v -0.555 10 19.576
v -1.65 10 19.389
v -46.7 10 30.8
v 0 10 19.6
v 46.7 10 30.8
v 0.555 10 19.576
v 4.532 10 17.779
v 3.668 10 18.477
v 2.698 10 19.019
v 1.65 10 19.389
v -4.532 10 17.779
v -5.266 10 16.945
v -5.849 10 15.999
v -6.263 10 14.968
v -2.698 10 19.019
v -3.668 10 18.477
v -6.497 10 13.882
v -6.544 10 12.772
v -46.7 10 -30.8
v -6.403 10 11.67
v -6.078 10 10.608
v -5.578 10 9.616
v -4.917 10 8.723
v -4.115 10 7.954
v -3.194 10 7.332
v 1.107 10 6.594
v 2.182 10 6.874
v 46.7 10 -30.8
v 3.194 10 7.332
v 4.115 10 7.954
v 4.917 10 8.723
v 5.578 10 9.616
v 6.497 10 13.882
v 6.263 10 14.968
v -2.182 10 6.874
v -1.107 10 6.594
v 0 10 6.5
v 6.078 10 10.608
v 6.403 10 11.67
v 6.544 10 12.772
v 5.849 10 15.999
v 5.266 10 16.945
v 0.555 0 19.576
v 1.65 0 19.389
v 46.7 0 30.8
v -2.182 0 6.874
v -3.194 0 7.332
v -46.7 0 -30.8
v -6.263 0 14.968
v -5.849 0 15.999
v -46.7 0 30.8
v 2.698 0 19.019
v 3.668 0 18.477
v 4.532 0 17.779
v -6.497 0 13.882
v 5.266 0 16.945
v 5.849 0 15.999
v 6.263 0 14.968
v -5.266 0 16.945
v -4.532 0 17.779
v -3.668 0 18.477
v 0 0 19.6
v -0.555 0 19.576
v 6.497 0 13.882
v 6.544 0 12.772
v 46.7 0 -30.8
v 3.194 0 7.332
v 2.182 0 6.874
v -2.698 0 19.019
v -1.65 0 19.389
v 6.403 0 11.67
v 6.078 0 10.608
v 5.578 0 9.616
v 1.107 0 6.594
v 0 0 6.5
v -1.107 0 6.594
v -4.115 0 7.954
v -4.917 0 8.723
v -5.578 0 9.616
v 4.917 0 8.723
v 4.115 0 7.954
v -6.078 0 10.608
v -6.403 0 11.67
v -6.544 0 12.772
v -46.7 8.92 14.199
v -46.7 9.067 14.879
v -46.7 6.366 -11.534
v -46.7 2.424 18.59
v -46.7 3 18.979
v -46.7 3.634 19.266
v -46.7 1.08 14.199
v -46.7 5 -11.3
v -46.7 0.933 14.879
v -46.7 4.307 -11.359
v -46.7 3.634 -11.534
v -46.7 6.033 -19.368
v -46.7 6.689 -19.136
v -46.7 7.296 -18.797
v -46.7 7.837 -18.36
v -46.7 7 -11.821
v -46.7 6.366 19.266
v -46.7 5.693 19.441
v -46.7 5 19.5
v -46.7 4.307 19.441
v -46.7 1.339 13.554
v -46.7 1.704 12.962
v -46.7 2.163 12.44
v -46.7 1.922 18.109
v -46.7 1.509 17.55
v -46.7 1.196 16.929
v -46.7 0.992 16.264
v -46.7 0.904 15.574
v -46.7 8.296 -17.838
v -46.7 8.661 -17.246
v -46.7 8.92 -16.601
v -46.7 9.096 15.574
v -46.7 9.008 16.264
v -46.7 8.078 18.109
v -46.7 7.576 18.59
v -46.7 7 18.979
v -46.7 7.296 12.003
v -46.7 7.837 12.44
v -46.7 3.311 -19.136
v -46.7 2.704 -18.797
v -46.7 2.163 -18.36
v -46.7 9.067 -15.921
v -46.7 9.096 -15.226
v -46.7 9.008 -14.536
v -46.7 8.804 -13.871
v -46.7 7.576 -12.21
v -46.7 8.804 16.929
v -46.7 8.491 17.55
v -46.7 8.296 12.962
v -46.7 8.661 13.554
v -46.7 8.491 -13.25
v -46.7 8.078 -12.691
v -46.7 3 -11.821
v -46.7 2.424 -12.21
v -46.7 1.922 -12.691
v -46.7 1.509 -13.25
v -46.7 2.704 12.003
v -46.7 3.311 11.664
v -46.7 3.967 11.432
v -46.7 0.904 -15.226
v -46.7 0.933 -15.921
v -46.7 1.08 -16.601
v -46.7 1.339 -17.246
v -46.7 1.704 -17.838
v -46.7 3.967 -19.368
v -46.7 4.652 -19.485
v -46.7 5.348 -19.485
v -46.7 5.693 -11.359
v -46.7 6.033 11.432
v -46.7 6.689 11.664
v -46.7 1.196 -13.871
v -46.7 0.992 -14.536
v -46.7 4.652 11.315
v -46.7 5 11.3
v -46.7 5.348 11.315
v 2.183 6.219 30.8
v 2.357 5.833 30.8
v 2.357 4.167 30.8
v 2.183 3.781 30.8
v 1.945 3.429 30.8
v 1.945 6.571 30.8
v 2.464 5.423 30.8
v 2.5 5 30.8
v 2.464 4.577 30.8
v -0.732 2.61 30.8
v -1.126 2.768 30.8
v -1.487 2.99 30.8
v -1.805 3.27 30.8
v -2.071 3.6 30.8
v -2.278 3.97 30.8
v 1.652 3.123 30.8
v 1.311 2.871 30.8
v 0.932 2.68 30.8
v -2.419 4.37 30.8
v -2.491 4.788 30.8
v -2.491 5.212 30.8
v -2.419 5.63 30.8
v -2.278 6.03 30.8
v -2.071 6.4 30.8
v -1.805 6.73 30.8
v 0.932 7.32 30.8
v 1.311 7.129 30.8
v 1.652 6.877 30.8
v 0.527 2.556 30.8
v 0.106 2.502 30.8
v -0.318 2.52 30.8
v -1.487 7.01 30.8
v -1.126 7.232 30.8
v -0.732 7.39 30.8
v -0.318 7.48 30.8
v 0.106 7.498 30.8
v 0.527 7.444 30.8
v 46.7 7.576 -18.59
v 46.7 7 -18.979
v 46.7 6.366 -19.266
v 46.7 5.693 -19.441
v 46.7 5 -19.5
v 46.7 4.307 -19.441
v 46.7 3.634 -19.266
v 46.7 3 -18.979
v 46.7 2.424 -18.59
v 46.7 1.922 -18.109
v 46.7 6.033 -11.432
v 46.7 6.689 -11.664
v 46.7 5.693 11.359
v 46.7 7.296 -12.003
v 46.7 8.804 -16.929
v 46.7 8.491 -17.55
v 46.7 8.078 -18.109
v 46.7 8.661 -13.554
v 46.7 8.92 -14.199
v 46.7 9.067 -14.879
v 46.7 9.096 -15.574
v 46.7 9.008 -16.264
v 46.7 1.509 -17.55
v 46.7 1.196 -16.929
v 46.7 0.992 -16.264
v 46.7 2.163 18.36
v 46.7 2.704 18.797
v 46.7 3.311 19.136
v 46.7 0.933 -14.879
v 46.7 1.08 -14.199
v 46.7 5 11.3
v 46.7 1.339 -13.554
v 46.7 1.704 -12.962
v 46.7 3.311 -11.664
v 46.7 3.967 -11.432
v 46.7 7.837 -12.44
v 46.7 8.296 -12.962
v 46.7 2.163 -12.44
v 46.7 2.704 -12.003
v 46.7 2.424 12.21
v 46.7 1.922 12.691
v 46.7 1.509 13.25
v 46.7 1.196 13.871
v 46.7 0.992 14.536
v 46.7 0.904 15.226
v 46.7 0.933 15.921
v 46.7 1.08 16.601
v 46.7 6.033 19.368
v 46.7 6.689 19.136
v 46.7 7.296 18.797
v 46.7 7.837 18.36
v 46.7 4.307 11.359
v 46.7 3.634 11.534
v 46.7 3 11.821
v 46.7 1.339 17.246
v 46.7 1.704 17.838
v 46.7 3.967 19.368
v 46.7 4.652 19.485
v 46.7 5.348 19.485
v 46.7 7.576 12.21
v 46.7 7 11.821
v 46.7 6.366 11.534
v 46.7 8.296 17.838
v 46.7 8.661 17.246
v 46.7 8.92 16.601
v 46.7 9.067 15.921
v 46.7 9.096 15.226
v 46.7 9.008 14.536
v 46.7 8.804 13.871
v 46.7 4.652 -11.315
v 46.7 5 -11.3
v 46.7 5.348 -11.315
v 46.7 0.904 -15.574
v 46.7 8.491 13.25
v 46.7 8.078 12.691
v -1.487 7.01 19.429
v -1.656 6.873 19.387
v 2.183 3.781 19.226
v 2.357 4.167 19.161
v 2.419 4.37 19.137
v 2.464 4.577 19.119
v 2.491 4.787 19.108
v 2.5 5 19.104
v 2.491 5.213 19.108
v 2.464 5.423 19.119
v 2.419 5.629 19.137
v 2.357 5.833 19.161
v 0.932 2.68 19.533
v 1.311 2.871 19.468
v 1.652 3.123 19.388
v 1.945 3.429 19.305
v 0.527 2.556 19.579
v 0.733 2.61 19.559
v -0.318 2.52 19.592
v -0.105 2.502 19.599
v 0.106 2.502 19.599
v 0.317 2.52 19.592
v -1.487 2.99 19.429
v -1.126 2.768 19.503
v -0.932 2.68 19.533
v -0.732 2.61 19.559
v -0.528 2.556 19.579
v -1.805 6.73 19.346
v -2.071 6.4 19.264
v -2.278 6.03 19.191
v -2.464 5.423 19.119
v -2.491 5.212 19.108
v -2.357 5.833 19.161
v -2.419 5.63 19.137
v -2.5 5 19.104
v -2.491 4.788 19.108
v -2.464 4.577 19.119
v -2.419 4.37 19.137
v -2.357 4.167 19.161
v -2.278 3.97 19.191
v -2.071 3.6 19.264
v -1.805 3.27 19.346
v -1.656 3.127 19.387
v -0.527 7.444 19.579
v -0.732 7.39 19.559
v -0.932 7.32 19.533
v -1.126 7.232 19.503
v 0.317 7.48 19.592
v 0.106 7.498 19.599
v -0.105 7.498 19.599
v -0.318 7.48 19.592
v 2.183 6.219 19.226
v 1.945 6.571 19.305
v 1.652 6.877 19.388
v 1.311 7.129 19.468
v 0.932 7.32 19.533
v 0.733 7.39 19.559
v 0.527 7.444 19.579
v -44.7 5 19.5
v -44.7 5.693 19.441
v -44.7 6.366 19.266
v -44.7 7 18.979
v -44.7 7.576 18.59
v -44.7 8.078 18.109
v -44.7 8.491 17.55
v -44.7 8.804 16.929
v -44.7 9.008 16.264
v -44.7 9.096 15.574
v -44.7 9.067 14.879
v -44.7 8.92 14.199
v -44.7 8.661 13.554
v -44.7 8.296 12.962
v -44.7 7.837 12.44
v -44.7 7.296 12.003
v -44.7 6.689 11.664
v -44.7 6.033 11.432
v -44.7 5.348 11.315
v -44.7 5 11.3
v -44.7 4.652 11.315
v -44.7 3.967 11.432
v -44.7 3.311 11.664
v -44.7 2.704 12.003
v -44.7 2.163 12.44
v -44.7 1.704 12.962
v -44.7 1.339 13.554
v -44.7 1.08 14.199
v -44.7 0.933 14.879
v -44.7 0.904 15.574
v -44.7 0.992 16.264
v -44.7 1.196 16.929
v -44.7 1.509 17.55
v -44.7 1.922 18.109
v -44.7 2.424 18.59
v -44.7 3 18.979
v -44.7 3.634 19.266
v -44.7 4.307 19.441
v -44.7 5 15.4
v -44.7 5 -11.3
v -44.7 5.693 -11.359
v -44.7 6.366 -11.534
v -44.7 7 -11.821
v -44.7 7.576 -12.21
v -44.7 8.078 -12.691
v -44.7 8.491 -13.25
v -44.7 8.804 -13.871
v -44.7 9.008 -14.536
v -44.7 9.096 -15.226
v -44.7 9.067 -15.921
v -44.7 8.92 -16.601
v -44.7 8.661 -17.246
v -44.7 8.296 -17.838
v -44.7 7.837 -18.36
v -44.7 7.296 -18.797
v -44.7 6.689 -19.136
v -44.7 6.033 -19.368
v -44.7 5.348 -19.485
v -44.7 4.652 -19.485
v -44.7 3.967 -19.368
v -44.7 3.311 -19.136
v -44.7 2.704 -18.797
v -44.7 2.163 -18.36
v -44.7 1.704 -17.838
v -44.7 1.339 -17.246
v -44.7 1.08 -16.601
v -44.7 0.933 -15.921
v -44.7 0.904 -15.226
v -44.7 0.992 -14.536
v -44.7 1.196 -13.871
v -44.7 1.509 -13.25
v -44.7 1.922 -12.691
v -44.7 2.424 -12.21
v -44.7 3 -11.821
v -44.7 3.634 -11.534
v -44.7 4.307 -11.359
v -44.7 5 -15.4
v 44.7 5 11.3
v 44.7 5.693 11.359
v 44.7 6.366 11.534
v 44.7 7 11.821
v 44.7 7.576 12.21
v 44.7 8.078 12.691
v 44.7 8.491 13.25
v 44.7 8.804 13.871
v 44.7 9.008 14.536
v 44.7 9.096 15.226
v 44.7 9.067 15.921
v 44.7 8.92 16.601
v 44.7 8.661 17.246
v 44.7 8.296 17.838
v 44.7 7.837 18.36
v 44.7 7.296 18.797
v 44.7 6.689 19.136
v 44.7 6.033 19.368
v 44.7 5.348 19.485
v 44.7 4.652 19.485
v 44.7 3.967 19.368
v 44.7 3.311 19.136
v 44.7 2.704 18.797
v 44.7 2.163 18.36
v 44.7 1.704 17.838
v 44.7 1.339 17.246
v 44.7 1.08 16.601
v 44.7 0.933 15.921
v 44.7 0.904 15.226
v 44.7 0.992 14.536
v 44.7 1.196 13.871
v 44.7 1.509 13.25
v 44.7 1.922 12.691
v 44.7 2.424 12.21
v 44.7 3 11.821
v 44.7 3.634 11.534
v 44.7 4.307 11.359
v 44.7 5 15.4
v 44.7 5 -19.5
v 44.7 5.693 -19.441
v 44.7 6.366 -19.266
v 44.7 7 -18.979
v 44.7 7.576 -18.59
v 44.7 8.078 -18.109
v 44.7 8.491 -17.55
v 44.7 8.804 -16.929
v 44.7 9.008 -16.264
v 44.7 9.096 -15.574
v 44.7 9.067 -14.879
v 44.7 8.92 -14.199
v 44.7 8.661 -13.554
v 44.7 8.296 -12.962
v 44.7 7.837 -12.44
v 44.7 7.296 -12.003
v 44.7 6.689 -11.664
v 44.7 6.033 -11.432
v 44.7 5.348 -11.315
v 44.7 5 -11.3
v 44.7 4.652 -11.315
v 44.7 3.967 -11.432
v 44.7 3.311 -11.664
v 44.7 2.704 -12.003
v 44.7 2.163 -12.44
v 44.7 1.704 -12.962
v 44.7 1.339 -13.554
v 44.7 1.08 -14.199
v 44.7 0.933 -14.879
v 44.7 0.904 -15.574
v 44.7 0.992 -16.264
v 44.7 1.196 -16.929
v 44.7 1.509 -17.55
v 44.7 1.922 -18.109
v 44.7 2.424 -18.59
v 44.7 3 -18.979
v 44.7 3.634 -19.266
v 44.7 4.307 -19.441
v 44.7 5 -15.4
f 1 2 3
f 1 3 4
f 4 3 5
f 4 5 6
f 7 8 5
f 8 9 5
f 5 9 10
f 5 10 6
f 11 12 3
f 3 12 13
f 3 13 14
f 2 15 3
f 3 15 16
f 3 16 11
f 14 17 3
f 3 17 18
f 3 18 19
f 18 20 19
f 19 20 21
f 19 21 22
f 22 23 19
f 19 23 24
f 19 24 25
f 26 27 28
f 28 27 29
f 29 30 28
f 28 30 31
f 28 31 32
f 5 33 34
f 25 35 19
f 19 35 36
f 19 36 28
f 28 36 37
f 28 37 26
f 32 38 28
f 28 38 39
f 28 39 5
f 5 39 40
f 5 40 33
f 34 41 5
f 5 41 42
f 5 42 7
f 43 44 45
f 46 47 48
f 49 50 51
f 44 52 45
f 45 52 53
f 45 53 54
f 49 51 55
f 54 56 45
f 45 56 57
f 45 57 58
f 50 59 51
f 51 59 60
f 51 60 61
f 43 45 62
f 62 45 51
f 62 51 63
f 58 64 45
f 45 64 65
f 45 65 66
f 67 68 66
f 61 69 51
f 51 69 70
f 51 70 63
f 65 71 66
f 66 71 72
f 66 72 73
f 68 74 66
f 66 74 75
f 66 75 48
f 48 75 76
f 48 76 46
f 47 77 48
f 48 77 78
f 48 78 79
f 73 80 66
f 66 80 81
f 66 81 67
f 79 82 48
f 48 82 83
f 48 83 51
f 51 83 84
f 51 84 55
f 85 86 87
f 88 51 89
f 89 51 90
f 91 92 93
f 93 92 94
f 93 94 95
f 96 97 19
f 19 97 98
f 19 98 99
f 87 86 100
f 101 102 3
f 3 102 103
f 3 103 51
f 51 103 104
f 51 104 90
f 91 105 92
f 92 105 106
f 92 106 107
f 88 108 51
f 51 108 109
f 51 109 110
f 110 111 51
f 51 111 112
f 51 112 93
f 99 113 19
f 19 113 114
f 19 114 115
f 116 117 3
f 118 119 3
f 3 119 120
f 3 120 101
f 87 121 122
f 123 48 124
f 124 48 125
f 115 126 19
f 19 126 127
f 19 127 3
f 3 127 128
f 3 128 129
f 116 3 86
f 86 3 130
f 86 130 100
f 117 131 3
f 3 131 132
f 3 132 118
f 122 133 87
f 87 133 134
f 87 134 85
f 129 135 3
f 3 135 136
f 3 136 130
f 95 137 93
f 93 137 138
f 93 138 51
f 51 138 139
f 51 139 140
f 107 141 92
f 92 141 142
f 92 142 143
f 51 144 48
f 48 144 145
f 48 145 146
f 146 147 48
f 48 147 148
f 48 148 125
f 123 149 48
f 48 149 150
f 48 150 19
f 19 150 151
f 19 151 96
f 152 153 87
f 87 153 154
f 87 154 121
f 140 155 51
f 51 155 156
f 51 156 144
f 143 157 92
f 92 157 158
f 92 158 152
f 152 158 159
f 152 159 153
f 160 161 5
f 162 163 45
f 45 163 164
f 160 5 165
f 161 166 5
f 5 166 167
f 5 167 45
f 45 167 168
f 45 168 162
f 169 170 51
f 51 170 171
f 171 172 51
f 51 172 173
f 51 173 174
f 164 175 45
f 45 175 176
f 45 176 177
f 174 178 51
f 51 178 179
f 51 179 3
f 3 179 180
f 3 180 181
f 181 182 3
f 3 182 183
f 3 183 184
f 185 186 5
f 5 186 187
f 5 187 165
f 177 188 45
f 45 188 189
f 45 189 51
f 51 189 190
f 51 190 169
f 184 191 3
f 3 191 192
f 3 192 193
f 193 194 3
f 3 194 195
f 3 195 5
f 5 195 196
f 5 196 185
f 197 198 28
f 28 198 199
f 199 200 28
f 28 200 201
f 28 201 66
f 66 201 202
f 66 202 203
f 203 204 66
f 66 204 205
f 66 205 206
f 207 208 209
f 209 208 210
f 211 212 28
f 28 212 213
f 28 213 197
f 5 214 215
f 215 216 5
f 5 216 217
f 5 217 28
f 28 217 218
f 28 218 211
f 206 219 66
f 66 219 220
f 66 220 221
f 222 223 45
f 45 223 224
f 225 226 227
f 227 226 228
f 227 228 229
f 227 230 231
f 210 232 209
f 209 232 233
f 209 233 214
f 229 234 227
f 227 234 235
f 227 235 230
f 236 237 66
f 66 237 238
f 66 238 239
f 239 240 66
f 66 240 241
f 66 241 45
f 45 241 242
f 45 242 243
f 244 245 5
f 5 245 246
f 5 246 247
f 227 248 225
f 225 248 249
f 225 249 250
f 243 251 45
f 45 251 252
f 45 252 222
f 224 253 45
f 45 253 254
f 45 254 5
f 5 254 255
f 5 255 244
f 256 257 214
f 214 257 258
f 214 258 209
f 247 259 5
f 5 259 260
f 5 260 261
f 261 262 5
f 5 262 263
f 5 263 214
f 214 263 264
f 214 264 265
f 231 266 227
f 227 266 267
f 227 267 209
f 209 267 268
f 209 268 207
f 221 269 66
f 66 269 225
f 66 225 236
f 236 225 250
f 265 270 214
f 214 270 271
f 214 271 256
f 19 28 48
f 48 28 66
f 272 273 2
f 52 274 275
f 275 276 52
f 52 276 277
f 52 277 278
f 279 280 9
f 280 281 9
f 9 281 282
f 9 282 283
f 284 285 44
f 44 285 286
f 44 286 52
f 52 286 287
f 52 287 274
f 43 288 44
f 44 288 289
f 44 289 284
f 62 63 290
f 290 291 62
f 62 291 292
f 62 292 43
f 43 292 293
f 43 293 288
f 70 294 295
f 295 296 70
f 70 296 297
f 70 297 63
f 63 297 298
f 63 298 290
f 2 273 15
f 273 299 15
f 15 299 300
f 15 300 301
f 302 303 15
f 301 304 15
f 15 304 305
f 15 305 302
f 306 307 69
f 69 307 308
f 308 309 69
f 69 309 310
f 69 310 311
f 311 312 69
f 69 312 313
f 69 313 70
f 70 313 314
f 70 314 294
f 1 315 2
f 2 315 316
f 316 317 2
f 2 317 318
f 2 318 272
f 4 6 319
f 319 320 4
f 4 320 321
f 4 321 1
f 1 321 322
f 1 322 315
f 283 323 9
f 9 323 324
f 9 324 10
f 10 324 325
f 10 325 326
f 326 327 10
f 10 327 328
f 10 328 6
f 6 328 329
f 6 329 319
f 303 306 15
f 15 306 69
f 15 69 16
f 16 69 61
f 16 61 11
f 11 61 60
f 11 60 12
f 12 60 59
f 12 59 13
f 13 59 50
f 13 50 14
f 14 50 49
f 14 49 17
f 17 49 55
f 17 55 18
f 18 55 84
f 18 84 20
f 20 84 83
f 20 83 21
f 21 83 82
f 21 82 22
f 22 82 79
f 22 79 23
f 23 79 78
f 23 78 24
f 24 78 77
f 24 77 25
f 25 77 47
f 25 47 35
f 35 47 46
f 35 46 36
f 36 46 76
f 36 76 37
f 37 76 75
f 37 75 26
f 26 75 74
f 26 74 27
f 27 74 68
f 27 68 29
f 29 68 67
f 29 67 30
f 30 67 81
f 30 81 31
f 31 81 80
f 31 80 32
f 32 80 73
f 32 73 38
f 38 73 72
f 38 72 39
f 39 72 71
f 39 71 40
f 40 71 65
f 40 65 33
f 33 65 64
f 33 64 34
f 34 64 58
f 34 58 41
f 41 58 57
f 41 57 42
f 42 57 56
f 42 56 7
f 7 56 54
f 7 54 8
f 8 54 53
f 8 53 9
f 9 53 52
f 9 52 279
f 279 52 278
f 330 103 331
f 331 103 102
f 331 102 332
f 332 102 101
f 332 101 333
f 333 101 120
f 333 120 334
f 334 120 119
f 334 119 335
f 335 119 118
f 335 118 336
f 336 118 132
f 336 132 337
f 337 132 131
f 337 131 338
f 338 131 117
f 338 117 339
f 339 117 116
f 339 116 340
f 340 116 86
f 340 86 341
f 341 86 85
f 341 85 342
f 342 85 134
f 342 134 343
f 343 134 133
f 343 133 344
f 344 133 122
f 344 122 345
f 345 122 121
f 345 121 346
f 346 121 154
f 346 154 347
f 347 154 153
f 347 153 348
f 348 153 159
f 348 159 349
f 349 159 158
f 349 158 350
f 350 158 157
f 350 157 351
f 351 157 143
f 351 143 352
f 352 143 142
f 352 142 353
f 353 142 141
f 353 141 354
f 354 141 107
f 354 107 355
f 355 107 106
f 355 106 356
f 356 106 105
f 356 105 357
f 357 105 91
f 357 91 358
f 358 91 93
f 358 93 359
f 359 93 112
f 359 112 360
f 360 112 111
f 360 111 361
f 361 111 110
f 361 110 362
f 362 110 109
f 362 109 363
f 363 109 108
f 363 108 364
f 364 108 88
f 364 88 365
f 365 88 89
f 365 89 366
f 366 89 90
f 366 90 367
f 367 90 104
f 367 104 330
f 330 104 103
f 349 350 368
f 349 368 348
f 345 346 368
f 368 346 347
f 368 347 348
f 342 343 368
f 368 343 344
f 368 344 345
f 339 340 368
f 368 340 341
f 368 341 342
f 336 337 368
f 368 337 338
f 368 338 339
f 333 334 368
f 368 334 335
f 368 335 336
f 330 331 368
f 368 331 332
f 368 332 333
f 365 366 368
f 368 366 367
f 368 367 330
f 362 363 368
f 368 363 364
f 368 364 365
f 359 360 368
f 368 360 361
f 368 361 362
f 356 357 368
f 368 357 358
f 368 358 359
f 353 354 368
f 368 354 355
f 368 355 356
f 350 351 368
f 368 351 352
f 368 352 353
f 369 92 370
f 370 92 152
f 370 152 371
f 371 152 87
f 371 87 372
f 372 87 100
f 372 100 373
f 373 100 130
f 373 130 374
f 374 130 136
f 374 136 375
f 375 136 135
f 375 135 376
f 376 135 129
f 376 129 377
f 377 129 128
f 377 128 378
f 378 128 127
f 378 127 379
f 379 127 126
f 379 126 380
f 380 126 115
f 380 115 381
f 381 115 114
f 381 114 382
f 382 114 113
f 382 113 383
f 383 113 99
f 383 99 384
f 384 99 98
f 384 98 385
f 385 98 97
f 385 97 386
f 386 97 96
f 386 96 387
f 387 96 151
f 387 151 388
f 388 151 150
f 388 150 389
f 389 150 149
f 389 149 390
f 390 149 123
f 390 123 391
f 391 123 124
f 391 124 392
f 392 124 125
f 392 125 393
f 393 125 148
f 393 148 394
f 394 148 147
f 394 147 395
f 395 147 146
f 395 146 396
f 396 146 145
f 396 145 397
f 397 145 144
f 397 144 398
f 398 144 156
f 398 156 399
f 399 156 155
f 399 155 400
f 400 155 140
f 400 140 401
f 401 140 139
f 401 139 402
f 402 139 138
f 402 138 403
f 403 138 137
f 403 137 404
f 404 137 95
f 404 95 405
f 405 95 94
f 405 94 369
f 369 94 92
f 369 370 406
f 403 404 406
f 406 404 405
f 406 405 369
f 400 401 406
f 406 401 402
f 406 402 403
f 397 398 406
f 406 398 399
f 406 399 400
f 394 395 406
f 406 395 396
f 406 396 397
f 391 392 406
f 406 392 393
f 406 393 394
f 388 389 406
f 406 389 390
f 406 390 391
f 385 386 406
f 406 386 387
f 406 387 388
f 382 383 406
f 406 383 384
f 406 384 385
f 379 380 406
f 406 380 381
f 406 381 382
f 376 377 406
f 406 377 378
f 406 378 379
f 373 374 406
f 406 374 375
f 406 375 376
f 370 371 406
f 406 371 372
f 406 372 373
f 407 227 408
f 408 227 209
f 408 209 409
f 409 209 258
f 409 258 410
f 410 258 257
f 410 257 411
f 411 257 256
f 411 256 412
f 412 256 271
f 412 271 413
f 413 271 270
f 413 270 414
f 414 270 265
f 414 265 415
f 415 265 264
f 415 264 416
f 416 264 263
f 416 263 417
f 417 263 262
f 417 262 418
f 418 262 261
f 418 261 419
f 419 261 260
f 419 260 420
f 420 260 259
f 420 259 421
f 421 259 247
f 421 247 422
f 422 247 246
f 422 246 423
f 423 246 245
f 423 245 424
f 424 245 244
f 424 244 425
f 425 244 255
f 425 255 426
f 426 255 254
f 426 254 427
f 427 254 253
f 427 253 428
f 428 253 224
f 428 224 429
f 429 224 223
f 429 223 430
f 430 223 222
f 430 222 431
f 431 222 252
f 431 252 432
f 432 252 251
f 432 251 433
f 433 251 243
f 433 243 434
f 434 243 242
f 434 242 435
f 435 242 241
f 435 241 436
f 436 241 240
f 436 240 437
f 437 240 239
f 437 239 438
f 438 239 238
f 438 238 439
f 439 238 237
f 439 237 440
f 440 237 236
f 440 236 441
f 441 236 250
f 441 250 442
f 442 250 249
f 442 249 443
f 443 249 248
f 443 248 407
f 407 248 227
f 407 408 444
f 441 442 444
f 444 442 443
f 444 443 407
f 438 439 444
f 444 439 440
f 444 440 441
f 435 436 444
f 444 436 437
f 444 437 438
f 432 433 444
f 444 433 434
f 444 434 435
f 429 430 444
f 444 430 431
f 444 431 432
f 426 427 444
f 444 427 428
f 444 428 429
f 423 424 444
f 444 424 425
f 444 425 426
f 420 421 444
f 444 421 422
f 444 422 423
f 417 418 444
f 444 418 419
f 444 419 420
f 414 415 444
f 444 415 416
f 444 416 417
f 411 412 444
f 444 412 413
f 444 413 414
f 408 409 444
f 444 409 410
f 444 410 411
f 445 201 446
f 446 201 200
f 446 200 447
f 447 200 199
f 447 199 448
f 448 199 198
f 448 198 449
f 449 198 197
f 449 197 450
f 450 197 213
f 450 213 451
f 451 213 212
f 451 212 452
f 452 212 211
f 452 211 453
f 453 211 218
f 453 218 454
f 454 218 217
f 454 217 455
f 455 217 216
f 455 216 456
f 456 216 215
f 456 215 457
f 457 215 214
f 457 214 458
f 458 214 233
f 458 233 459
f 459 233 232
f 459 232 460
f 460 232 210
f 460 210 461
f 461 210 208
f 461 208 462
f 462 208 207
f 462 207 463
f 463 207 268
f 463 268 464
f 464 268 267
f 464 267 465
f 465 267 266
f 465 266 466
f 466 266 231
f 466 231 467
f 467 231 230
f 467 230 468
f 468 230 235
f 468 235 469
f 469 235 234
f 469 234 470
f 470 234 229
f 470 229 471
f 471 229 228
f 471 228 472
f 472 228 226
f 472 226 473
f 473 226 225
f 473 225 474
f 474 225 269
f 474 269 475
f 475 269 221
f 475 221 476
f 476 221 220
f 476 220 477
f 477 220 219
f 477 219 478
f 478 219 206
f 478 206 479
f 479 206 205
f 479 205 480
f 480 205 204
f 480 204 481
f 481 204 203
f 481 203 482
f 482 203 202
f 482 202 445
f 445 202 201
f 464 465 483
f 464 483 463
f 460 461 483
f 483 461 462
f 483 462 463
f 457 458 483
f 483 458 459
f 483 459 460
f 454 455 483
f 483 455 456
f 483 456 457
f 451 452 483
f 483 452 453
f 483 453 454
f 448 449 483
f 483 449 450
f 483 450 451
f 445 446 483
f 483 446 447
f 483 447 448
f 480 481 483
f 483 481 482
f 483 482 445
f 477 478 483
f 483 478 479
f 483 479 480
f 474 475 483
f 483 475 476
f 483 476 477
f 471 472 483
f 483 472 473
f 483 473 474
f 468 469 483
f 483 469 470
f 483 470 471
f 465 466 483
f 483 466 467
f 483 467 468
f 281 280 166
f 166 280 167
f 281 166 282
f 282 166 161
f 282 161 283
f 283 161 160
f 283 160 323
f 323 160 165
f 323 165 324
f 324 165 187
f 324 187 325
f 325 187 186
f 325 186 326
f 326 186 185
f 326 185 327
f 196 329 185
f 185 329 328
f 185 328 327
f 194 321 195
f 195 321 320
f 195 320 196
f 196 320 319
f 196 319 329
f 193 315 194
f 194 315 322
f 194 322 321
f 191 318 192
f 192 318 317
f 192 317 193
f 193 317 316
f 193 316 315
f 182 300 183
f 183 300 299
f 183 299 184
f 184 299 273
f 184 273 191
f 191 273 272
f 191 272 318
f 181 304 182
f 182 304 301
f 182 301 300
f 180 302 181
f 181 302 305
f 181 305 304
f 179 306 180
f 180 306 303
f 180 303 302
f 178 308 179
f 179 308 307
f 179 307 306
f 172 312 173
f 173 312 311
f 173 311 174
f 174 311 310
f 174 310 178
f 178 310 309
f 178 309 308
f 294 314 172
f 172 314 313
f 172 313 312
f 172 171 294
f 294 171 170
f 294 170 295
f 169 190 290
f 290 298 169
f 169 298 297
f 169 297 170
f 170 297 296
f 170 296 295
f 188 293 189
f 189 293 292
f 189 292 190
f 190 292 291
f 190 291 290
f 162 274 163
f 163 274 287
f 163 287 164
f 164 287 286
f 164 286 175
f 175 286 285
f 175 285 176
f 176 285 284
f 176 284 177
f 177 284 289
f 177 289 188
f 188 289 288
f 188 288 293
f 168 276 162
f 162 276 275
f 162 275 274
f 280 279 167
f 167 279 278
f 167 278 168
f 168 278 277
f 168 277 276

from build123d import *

# Parameters (mm, degrees)
CROQUIS1_W                 = 93.4
CROQUIS1_H                 = 61.6
CROQUIS1_R                 = 6.55
SALIENTE_EXTRUIR1_DEPTH    = 10
CROQUIS2_R                 = 4.1
CORTAR_EXTRUIR1_DEPTH      = 2
CORTAR_EXTRUIR2_REACH      = 79.945
CORTAR_EXTRUIR2_END_RADIUS = 6.55
CROQUIS3_R                 = 2.5


with BuildPart() as part:
    # Croquis1 → Saliente-Extruir1 (new body)
    with BuildSketch(Plane(origin=(0, 0, 0), x_dir=(1, 0, 0), z_dir=(0, 1, 0))):
        Rectangle(CROQUIS1_W, CROQUIS1_H)
        with Locations(Location((0, -13.05, 0), (0, 0, 270))):
            Circle(CROQUIS1_R, mode=Mode.SUBTRACT)
    extrude(amount=SALIENTE_EXTRUIR1_DEPTH)

    # Croquis2 → Cortar-Extruir1 (cut)
    with BuildSketch(Plane.ZY.offset(46.7)):
        with Locations((-15.4, 5)):
            Circle(CROQUIS2_R)
        with Locations(Location((15.4, 5, 0), (0, 0, 180))):
            Circle(CROQUIS2_R)
    cortar_extruir1 = extrude(amount=-CORTAR_EXTRUIR1_DEPTH, mode=Mode.SUBTRACT)

    # Simetría2: Cortar-Extruir1 across plane
    add(cortar_extruir1.mirror(Plane(origin=(0, 0, 0), x_dir=(0, 0, 1), z_dir=(1, 0, 0))), mode=Mode.SUBTRACT)

    # Cortar-Extruir2: up to this cylinder (the profile starts outside it)
    cortar_extruir2_end = Plane(origin=(0, 5, 13.05), z_dir=(0, -1, 0)) * Cylinder(CORTAR_EXTRUIR2_END_RADIUS, 173.99, mode=Mode.PRIVATE)
    # Croquis3 → Cortar-Extruir2 (cut, up to the surface)
    with BuildSketch(Plane.XY.offset(30.8), mode=Mode.PRIVATE) as cortar_extruir2_sk1:
        with Locations((0, 5)):
            Circle(CROQUIS3_R)
    cortar_extruir2_tool1 = extrude(cortar_extruir2_sk1.sketch, amount=-CORTAR_EXTRUIR2_REACH, mode=Mode.PRIVATE) - cortar_extruir2_end
    add(cortar_extruir2_tool1.solids().sort_by_distance((0, 5, 30.8))[0], mode=Mode.SUBTRACT)


solid = part.part
